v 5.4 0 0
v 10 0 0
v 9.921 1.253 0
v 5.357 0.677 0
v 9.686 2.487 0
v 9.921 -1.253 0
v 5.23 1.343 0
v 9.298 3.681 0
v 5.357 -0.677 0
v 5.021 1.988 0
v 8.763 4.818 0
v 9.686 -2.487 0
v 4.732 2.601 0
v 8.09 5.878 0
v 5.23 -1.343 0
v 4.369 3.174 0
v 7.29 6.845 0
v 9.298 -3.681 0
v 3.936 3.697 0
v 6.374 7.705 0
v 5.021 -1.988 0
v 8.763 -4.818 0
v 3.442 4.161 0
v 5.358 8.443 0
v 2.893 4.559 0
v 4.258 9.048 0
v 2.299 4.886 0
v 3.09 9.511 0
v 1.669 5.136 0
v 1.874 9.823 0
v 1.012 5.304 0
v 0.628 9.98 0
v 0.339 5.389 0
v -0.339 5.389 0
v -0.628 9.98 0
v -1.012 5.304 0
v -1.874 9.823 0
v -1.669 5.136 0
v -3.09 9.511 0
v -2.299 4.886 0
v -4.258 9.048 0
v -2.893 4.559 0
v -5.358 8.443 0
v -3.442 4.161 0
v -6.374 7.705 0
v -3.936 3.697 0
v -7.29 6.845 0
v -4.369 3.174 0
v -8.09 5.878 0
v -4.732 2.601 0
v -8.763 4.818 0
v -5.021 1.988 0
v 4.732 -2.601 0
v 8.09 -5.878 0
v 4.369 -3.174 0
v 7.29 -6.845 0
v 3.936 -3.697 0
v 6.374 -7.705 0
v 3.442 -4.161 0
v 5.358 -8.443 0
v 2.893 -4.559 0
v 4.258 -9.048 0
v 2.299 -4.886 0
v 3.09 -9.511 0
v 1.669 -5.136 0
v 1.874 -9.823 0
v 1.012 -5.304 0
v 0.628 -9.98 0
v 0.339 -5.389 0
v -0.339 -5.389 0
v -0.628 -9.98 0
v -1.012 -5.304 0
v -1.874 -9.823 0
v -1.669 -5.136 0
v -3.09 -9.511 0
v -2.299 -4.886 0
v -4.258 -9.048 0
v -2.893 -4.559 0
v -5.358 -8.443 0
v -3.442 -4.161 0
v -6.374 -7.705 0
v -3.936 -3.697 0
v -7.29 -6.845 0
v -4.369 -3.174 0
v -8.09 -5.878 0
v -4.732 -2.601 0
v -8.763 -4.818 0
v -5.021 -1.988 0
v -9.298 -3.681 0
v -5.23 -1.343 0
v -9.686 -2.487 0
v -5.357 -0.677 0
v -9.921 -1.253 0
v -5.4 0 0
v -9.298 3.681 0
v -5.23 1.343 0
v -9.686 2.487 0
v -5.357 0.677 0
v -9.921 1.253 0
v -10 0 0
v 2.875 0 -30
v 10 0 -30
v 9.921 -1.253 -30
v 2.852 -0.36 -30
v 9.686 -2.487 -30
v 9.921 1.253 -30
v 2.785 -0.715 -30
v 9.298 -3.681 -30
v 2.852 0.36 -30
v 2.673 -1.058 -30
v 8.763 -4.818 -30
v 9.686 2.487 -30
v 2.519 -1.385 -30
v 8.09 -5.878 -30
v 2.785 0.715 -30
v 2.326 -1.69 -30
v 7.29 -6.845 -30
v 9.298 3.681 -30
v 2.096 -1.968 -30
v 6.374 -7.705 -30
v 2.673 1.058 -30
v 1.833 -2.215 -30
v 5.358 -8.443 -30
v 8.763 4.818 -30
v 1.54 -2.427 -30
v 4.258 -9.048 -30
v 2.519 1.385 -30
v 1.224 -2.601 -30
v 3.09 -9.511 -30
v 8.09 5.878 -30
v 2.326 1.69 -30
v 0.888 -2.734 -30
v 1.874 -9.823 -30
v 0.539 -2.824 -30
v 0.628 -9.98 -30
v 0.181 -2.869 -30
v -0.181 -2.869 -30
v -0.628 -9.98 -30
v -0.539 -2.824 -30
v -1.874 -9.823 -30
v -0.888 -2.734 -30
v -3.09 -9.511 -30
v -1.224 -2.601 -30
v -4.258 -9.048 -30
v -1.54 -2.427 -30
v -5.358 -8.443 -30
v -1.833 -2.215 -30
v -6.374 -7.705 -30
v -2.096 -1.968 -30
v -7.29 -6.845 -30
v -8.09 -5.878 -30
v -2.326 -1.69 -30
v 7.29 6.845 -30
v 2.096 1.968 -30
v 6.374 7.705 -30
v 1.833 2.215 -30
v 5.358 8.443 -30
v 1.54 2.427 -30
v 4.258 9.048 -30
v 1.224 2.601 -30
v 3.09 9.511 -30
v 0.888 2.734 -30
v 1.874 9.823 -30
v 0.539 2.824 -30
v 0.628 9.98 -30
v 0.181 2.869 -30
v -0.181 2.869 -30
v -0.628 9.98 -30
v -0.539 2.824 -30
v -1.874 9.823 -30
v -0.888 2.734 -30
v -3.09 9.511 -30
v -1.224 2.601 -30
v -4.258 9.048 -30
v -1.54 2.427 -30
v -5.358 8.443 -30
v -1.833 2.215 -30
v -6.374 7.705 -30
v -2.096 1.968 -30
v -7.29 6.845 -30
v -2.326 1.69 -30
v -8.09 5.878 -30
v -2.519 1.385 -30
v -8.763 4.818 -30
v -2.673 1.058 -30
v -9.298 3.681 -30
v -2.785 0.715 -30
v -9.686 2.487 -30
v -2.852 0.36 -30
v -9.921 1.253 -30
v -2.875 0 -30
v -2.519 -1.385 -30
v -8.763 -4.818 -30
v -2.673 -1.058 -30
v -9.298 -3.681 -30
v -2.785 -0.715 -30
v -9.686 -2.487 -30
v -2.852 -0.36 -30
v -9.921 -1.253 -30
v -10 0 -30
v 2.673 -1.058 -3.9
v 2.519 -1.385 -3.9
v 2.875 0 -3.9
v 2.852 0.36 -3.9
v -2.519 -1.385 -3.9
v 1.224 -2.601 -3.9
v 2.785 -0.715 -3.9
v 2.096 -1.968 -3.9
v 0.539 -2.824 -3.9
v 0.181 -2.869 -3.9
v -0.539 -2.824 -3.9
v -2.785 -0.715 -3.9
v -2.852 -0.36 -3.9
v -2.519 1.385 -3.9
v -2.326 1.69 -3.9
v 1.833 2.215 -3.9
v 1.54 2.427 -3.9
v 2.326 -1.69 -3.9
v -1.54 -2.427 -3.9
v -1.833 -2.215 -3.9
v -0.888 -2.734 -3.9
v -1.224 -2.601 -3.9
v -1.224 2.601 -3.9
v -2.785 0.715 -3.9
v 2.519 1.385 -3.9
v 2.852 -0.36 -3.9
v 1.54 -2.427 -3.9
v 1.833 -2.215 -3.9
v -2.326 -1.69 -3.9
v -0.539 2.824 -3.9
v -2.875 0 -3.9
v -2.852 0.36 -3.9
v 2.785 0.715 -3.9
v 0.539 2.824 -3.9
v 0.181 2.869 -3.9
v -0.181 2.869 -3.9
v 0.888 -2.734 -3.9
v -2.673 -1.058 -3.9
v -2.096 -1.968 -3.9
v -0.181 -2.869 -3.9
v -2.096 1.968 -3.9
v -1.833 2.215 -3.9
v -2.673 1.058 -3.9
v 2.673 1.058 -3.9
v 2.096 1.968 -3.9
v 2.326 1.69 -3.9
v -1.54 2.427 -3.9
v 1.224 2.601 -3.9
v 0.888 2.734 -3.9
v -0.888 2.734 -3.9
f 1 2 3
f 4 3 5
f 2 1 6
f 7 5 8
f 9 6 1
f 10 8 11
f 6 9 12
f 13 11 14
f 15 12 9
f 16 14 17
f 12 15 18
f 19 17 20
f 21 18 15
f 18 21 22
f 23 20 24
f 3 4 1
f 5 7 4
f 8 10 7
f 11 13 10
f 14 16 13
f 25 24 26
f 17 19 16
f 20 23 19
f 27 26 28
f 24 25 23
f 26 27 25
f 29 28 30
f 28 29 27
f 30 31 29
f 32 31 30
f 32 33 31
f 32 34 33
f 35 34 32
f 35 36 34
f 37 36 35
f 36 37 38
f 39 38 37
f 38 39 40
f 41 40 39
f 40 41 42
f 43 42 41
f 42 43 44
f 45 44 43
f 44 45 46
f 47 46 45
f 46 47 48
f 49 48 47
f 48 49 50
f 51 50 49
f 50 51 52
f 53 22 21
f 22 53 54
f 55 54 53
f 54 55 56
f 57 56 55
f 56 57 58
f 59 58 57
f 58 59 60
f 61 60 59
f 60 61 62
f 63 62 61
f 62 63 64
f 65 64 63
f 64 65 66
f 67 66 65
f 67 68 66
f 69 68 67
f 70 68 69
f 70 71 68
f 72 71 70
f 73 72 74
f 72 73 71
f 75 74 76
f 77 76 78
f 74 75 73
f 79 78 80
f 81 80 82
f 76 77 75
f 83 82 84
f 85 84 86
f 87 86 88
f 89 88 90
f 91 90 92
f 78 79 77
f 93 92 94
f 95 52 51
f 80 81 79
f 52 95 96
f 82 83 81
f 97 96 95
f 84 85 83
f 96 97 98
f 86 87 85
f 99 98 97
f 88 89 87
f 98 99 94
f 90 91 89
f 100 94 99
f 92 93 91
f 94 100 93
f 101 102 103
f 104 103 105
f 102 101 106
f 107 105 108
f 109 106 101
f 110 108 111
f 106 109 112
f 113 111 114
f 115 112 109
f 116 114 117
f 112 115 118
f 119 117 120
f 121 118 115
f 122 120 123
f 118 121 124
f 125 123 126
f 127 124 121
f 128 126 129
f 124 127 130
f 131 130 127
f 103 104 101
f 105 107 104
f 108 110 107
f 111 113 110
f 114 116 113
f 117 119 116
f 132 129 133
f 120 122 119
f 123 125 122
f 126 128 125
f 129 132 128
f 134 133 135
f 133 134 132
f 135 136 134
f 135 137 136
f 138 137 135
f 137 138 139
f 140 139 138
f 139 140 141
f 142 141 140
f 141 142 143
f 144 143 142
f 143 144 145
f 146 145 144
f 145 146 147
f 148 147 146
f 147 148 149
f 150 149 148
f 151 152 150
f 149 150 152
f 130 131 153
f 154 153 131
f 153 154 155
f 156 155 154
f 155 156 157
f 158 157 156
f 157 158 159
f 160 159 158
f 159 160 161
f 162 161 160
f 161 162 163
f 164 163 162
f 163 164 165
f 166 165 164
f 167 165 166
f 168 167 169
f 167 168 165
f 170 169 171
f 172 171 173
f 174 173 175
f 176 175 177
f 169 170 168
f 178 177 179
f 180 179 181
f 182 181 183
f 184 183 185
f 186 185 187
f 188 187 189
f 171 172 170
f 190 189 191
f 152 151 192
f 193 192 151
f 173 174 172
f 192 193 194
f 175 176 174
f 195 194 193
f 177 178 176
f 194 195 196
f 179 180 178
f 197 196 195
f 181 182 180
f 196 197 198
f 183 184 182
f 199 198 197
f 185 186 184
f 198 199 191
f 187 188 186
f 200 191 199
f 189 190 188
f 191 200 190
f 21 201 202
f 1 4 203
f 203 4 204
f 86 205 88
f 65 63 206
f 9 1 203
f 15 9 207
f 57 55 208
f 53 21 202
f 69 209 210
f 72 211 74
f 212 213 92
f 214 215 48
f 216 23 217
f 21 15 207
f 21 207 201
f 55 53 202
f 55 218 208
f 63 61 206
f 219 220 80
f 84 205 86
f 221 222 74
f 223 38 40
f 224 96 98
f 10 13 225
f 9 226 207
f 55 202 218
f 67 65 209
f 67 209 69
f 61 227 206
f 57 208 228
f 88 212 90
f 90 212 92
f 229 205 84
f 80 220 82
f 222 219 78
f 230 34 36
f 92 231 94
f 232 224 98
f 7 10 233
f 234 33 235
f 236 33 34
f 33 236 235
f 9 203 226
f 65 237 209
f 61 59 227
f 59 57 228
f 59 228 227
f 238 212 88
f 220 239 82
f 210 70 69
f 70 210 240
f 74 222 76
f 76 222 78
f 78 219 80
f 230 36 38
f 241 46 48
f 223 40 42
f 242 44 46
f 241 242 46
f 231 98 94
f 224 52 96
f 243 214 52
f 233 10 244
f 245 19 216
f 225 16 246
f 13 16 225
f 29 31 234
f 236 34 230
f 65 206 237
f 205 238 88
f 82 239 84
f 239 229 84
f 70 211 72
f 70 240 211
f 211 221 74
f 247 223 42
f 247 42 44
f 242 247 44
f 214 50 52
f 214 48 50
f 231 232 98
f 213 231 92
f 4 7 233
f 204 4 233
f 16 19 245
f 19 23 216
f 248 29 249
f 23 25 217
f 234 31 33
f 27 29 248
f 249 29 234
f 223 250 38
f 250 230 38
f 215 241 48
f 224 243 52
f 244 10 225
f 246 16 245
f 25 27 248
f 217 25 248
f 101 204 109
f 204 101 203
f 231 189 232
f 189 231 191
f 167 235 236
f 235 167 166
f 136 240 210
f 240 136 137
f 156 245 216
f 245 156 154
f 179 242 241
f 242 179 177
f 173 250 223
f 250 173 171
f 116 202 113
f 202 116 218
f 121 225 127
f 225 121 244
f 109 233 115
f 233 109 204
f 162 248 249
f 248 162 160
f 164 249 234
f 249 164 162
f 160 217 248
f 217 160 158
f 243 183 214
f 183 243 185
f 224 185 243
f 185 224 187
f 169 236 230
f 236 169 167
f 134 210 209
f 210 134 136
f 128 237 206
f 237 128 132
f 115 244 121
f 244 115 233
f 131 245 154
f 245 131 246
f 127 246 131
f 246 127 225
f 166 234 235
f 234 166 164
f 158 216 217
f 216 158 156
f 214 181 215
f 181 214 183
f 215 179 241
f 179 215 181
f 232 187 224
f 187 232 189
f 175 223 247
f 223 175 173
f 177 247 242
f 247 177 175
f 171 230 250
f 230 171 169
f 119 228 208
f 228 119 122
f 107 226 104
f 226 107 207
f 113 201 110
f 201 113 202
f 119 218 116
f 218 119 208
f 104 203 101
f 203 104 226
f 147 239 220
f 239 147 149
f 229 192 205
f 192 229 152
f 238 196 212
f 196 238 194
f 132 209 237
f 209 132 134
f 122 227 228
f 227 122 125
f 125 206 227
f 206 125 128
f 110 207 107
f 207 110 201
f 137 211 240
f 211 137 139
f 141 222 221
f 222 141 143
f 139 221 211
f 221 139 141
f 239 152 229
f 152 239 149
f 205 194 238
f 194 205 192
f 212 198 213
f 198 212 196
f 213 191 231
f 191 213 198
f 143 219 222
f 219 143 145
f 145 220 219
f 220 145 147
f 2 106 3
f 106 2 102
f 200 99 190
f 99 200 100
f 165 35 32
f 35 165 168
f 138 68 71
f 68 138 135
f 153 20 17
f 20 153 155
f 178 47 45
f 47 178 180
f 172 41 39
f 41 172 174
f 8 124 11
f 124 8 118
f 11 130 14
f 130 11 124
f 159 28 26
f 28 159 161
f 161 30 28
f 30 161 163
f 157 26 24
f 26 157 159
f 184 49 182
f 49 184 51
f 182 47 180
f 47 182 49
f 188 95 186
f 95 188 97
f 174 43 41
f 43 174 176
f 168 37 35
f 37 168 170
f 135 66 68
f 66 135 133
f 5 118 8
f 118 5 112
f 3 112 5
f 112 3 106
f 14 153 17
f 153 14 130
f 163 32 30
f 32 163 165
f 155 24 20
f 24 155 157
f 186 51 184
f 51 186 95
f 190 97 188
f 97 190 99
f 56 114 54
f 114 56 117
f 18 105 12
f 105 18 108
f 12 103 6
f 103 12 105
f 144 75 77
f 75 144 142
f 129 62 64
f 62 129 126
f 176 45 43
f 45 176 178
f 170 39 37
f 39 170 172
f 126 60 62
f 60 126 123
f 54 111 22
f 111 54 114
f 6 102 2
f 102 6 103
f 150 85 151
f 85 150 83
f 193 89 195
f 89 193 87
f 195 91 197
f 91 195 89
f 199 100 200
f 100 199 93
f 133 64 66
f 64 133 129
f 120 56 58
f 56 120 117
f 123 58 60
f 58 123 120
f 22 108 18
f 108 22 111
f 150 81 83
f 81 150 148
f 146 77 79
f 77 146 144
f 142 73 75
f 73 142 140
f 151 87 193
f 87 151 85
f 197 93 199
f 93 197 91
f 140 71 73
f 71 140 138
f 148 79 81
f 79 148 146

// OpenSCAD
$fn = 50;


difference() {
	union() {
		translate(v = [0, 0, -30.0000000000]) {
			cylinder(h = 30, r = 10.0000000000);
		}
		cylinder(h = 0, r = 20.0000000000);
	}
	union() {
		translate(v = [0, 0, 0]) {
			rotate(a = [0, 0, 0]) {
				difference() {
					union() {
						#translate(v = [0, 0, -30.0000000000]) {
							cylinder(h = 30, r = 2.6000000000);
						}
						#translate(v = [0, 0, -3.9000000000]) {
							cylinder(h = 3.9000000000, r1 = 2.8750000000, r2 = 5.4000000000);
						}
						#translate(v = [0, 0, -30.0000000000]) {
							cylinder(h = 30, r = 2.8750000000);
						}
						#translate(v = [0, 0, -30.0000000000]) {
							cylinder(h = 30, r = 2.6000000000);
						}
					}
					union();
				}
			}
		}
	}
}
